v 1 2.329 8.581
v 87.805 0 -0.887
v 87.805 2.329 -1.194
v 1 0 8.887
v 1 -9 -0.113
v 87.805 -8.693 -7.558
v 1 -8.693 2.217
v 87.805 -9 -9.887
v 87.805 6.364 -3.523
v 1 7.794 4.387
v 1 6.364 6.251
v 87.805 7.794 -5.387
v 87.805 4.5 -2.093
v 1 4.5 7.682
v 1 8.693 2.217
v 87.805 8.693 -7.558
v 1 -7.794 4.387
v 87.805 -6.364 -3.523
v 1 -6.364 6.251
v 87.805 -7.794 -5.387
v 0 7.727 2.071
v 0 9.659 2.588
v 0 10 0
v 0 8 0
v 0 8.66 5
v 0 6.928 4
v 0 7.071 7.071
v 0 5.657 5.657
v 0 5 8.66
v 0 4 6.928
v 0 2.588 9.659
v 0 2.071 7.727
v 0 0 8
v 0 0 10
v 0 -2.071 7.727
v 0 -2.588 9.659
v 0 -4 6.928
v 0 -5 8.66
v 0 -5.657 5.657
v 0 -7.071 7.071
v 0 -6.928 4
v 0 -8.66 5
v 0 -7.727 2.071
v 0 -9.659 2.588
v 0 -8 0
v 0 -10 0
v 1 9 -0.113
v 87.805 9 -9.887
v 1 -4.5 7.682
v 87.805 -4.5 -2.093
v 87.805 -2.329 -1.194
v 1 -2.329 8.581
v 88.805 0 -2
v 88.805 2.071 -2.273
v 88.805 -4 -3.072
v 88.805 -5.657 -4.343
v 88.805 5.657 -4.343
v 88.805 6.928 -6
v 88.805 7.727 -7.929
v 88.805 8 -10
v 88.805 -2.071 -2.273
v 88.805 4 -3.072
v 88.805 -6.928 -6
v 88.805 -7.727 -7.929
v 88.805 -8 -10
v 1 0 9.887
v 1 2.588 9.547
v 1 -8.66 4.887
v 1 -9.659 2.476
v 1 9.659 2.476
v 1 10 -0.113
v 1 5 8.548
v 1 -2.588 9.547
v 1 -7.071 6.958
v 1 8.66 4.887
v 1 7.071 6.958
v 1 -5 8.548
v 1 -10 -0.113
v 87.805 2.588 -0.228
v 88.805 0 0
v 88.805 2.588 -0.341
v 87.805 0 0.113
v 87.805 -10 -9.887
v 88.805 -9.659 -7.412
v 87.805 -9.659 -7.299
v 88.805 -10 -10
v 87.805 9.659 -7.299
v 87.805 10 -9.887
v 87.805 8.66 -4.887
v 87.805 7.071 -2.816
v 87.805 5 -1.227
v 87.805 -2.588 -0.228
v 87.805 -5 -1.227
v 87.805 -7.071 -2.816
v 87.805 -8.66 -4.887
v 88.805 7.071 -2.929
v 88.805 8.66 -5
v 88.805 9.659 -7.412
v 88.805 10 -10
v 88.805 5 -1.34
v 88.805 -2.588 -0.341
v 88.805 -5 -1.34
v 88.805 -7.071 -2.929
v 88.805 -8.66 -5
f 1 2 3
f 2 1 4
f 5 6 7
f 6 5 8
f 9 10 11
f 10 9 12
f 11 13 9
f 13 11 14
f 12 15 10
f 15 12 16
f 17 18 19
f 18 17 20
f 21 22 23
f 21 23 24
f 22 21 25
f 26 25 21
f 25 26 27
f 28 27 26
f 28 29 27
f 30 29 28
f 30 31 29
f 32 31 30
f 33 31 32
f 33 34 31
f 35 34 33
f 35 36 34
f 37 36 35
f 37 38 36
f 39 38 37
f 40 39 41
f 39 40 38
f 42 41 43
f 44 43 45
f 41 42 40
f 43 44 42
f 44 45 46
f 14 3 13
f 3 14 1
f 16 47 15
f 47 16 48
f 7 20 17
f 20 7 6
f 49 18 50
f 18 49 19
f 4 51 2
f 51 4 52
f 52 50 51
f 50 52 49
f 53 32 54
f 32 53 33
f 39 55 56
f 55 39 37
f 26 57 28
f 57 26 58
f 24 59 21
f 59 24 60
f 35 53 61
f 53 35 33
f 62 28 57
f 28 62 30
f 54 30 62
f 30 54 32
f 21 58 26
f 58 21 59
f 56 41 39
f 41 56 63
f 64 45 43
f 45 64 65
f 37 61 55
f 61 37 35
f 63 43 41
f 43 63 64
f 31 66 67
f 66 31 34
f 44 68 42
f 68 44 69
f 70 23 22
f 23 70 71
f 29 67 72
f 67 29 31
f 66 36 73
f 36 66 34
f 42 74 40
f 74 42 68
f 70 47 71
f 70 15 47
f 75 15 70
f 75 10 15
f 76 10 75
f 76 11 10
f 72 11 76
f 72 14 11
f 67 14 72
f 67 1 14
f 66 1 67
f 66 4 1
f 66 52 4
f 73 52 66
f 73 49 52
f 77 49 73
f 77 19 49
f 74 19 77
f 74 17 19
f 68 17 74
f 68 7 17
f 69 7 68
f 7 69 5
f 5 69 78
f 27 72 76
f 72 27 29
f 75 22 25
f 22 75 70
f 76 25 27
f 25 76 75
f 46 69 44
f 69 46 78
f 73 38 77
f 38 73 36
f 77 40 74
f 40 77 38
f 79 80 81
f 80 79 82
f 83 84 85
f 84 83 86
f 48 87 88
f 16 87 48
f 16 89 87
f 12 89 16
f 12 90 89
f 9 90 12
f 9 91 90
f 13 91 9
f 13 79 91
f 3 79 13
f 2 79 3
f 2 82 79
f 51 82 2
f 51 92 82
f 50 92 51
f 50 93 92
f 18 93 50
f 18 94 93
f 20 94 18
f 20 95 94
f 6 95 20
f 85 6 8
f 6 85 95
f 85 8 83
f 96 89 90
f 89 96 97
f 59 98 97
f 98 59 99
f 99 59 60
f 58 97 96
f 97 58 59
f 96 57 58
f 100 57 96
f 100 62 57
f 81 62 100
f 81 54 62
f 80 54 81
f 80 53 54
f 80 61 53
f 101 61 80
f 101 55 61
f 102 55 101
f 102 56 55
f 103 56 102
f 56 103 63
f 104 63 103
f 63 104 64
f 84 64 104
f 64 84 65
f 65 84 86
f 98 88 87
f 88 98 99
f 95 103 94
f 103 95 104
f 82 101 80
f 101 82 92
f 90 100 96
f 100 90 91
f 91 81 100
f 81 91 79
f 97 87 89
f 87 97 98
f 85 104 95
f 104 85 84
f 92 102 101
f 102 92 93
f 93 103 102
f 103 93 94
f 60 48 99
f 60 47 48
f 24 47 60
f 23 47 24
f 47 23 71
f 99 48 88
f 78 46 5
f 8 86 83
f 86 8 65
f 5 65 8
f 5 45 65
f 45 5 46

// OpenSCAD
// file: ../build_environments.scad
// build_environments.scad: modules to build level sections
//

module pool(diameter=10.0, wall_height=2.0, step_width=3.0, connections=[])
{
    difference() {
        union() {
        difference() {
            cylinder(h=0.5,r1=diameter+step_width,r2=diameter+step_width,$fn=48);
            translate([0,0,-0.1])
                cylinder(h=0.7,r1=diameter,r2=diameter,$fn=48);
        }
        difference() {
            cylinder(h=wall_height,r1=diameter+step_width+1.0,r2=diameter+step_width+1.0,$fn=48);
            translate([0,0,-0.1])
                cylinder(h=wall_height+0.2,r1=diameter+step_width,r2=diameter+step_width,$fn=48);
        }
        }
    
        for (c = connections)
        {
            rotate([0,90,0]) {
                angle = atan2(c[1],c[0]);
                rotate([-angle,0,0]) {
                    cylinder(h=diameter+5.0,r1=c[2],r2=c[2],$fn=48);
                }
            }
        }
    }
}

module straight(length=10.0, width=2.0, dy1=0.0, dy2=0.0, dz=0.0)
{
    dims = [0, 0, 0, 0, 0, (dz/length)];
    matrix = [
        [ 1, dims[0], dims[1], 0 ],
        [ dims[2], 1, dims[4], 0 ],
        [ dims[5], dims[3], 1, 0 ],
        [ 0, 0, 0, 1 ]
    ];
    multmatrix(matrix)
    difference() {
        translate([dy1,0,0])
        union() {
            rotate([0,90,0]) {
                difference() {
                    cylinder(h=(length-dy1-dy2),r1=width+1.0,r2=width+1.0,$fn=24);
                    translate([0,0,-0.1])
                        cylinder(h=(length-dy1-dy2+0.2),r1=width,r2=width,$fn=24);
                }
                difference() {
                    cylinder(h=1.0,r1=width+2.0,r2=width+2.0,$fn=24);
                    translate([0,0,-0.1])
                        cylinder(h=1.2,r1=width,r2=width,$fn=24);
                }
                translate([0,0,(length-dy1-dy2)-1.0]) {
                    difference() {
                        cylinder(h=1.0,r1=width+2.0,r2=width+2.0,$fn=24);
                        translate([0,0,-0.1])
                            cylinder(h=1.2,r1=width,r2=width,$fn=24);
                    }
                }
            }
        }
        translate([0,0,-(2*width+4.0)/2])
            cube([3*length,3*length,2*width+4.0],center=true);
    }
}

module curve(p0=[0,0], center=[0,0], dir=1, angle=0.0, width=2.0)
{
    radius = sqrt((p0[0]-center[0])*(p0[0]-center[0]) + (p0[1]-center[1])*(p0[1]-center[1]));
    if (dir == 0) {
        difference() {
            rotate([0,0,-90])
            difference() {
                rotate_extrude(angle = angle, convexity = 10, $fn=32)
                    translate([radius, 0, 0])
                        circle(r = width+1.0,$fn=24);
                rotate([0,0,-1.0])
                    rotate_extrude(angle = angle+2.0, convexity = 10, $fn=32)
                        translate([radius, 0, 0])
                            circle(r = width,$fn=24);
            }
            translate([0,0,-(2*width+4.0)/2])
                cube([5*radius,5*radius,2*width+4.0],center=true);
        }
    }
    else {
        difference() {
            rotate([0,0,90])
            difference() {
                rotate_extrude(angle = -angle, convexity = 10, $fn=32)
                    translate([radius, 0, 0])
                        circle(r = width+1.0,$fn=24);
                rotate([0,0,1.0])
                    rotate_extrude(angle = -angle-2.0, convexity = 10, $fn=32)
                        translate([radius, 0, 0])
                            circle(r = width,$fn=24);
            }
            translate([0,0,-(2*width+4.0)/2])
                cube([5*radius,5*radius,2*width+4.0],center=true);
        }
    }

}

// test pool
//pool(diameter=12.0000, wall_height=3.0000, step_width=3.0000, connections=[[0.0000,-26.0000,2.0000], [23.6074,0.0000,2.0000]]);

// test straight, slope
//straight(length=26.0000, width=2.0000, dy1=11.8322, dy2=6.7082, dz=0.0000);
//straight(length=29.1549, width=12.0000, dy1=0.0000, dy2=0.0000, dz=-15.0000);

// test curve
//curve(p0=[23.6074, 0.0000], center=[23.6074, 5.0000], dir=0, angle=60.1011, width=2.0000);
//curve(p0=[33.6426, 12.4219], center=[37.9771, 9.9295], dir=1, angle=120.4627, width=2.0000);
// main file
use <../build_environments.scad>;
straight(length=88.8047, width=8.0000, dy1=0.0000, dy2=0.0000, dz=-10.0000);
